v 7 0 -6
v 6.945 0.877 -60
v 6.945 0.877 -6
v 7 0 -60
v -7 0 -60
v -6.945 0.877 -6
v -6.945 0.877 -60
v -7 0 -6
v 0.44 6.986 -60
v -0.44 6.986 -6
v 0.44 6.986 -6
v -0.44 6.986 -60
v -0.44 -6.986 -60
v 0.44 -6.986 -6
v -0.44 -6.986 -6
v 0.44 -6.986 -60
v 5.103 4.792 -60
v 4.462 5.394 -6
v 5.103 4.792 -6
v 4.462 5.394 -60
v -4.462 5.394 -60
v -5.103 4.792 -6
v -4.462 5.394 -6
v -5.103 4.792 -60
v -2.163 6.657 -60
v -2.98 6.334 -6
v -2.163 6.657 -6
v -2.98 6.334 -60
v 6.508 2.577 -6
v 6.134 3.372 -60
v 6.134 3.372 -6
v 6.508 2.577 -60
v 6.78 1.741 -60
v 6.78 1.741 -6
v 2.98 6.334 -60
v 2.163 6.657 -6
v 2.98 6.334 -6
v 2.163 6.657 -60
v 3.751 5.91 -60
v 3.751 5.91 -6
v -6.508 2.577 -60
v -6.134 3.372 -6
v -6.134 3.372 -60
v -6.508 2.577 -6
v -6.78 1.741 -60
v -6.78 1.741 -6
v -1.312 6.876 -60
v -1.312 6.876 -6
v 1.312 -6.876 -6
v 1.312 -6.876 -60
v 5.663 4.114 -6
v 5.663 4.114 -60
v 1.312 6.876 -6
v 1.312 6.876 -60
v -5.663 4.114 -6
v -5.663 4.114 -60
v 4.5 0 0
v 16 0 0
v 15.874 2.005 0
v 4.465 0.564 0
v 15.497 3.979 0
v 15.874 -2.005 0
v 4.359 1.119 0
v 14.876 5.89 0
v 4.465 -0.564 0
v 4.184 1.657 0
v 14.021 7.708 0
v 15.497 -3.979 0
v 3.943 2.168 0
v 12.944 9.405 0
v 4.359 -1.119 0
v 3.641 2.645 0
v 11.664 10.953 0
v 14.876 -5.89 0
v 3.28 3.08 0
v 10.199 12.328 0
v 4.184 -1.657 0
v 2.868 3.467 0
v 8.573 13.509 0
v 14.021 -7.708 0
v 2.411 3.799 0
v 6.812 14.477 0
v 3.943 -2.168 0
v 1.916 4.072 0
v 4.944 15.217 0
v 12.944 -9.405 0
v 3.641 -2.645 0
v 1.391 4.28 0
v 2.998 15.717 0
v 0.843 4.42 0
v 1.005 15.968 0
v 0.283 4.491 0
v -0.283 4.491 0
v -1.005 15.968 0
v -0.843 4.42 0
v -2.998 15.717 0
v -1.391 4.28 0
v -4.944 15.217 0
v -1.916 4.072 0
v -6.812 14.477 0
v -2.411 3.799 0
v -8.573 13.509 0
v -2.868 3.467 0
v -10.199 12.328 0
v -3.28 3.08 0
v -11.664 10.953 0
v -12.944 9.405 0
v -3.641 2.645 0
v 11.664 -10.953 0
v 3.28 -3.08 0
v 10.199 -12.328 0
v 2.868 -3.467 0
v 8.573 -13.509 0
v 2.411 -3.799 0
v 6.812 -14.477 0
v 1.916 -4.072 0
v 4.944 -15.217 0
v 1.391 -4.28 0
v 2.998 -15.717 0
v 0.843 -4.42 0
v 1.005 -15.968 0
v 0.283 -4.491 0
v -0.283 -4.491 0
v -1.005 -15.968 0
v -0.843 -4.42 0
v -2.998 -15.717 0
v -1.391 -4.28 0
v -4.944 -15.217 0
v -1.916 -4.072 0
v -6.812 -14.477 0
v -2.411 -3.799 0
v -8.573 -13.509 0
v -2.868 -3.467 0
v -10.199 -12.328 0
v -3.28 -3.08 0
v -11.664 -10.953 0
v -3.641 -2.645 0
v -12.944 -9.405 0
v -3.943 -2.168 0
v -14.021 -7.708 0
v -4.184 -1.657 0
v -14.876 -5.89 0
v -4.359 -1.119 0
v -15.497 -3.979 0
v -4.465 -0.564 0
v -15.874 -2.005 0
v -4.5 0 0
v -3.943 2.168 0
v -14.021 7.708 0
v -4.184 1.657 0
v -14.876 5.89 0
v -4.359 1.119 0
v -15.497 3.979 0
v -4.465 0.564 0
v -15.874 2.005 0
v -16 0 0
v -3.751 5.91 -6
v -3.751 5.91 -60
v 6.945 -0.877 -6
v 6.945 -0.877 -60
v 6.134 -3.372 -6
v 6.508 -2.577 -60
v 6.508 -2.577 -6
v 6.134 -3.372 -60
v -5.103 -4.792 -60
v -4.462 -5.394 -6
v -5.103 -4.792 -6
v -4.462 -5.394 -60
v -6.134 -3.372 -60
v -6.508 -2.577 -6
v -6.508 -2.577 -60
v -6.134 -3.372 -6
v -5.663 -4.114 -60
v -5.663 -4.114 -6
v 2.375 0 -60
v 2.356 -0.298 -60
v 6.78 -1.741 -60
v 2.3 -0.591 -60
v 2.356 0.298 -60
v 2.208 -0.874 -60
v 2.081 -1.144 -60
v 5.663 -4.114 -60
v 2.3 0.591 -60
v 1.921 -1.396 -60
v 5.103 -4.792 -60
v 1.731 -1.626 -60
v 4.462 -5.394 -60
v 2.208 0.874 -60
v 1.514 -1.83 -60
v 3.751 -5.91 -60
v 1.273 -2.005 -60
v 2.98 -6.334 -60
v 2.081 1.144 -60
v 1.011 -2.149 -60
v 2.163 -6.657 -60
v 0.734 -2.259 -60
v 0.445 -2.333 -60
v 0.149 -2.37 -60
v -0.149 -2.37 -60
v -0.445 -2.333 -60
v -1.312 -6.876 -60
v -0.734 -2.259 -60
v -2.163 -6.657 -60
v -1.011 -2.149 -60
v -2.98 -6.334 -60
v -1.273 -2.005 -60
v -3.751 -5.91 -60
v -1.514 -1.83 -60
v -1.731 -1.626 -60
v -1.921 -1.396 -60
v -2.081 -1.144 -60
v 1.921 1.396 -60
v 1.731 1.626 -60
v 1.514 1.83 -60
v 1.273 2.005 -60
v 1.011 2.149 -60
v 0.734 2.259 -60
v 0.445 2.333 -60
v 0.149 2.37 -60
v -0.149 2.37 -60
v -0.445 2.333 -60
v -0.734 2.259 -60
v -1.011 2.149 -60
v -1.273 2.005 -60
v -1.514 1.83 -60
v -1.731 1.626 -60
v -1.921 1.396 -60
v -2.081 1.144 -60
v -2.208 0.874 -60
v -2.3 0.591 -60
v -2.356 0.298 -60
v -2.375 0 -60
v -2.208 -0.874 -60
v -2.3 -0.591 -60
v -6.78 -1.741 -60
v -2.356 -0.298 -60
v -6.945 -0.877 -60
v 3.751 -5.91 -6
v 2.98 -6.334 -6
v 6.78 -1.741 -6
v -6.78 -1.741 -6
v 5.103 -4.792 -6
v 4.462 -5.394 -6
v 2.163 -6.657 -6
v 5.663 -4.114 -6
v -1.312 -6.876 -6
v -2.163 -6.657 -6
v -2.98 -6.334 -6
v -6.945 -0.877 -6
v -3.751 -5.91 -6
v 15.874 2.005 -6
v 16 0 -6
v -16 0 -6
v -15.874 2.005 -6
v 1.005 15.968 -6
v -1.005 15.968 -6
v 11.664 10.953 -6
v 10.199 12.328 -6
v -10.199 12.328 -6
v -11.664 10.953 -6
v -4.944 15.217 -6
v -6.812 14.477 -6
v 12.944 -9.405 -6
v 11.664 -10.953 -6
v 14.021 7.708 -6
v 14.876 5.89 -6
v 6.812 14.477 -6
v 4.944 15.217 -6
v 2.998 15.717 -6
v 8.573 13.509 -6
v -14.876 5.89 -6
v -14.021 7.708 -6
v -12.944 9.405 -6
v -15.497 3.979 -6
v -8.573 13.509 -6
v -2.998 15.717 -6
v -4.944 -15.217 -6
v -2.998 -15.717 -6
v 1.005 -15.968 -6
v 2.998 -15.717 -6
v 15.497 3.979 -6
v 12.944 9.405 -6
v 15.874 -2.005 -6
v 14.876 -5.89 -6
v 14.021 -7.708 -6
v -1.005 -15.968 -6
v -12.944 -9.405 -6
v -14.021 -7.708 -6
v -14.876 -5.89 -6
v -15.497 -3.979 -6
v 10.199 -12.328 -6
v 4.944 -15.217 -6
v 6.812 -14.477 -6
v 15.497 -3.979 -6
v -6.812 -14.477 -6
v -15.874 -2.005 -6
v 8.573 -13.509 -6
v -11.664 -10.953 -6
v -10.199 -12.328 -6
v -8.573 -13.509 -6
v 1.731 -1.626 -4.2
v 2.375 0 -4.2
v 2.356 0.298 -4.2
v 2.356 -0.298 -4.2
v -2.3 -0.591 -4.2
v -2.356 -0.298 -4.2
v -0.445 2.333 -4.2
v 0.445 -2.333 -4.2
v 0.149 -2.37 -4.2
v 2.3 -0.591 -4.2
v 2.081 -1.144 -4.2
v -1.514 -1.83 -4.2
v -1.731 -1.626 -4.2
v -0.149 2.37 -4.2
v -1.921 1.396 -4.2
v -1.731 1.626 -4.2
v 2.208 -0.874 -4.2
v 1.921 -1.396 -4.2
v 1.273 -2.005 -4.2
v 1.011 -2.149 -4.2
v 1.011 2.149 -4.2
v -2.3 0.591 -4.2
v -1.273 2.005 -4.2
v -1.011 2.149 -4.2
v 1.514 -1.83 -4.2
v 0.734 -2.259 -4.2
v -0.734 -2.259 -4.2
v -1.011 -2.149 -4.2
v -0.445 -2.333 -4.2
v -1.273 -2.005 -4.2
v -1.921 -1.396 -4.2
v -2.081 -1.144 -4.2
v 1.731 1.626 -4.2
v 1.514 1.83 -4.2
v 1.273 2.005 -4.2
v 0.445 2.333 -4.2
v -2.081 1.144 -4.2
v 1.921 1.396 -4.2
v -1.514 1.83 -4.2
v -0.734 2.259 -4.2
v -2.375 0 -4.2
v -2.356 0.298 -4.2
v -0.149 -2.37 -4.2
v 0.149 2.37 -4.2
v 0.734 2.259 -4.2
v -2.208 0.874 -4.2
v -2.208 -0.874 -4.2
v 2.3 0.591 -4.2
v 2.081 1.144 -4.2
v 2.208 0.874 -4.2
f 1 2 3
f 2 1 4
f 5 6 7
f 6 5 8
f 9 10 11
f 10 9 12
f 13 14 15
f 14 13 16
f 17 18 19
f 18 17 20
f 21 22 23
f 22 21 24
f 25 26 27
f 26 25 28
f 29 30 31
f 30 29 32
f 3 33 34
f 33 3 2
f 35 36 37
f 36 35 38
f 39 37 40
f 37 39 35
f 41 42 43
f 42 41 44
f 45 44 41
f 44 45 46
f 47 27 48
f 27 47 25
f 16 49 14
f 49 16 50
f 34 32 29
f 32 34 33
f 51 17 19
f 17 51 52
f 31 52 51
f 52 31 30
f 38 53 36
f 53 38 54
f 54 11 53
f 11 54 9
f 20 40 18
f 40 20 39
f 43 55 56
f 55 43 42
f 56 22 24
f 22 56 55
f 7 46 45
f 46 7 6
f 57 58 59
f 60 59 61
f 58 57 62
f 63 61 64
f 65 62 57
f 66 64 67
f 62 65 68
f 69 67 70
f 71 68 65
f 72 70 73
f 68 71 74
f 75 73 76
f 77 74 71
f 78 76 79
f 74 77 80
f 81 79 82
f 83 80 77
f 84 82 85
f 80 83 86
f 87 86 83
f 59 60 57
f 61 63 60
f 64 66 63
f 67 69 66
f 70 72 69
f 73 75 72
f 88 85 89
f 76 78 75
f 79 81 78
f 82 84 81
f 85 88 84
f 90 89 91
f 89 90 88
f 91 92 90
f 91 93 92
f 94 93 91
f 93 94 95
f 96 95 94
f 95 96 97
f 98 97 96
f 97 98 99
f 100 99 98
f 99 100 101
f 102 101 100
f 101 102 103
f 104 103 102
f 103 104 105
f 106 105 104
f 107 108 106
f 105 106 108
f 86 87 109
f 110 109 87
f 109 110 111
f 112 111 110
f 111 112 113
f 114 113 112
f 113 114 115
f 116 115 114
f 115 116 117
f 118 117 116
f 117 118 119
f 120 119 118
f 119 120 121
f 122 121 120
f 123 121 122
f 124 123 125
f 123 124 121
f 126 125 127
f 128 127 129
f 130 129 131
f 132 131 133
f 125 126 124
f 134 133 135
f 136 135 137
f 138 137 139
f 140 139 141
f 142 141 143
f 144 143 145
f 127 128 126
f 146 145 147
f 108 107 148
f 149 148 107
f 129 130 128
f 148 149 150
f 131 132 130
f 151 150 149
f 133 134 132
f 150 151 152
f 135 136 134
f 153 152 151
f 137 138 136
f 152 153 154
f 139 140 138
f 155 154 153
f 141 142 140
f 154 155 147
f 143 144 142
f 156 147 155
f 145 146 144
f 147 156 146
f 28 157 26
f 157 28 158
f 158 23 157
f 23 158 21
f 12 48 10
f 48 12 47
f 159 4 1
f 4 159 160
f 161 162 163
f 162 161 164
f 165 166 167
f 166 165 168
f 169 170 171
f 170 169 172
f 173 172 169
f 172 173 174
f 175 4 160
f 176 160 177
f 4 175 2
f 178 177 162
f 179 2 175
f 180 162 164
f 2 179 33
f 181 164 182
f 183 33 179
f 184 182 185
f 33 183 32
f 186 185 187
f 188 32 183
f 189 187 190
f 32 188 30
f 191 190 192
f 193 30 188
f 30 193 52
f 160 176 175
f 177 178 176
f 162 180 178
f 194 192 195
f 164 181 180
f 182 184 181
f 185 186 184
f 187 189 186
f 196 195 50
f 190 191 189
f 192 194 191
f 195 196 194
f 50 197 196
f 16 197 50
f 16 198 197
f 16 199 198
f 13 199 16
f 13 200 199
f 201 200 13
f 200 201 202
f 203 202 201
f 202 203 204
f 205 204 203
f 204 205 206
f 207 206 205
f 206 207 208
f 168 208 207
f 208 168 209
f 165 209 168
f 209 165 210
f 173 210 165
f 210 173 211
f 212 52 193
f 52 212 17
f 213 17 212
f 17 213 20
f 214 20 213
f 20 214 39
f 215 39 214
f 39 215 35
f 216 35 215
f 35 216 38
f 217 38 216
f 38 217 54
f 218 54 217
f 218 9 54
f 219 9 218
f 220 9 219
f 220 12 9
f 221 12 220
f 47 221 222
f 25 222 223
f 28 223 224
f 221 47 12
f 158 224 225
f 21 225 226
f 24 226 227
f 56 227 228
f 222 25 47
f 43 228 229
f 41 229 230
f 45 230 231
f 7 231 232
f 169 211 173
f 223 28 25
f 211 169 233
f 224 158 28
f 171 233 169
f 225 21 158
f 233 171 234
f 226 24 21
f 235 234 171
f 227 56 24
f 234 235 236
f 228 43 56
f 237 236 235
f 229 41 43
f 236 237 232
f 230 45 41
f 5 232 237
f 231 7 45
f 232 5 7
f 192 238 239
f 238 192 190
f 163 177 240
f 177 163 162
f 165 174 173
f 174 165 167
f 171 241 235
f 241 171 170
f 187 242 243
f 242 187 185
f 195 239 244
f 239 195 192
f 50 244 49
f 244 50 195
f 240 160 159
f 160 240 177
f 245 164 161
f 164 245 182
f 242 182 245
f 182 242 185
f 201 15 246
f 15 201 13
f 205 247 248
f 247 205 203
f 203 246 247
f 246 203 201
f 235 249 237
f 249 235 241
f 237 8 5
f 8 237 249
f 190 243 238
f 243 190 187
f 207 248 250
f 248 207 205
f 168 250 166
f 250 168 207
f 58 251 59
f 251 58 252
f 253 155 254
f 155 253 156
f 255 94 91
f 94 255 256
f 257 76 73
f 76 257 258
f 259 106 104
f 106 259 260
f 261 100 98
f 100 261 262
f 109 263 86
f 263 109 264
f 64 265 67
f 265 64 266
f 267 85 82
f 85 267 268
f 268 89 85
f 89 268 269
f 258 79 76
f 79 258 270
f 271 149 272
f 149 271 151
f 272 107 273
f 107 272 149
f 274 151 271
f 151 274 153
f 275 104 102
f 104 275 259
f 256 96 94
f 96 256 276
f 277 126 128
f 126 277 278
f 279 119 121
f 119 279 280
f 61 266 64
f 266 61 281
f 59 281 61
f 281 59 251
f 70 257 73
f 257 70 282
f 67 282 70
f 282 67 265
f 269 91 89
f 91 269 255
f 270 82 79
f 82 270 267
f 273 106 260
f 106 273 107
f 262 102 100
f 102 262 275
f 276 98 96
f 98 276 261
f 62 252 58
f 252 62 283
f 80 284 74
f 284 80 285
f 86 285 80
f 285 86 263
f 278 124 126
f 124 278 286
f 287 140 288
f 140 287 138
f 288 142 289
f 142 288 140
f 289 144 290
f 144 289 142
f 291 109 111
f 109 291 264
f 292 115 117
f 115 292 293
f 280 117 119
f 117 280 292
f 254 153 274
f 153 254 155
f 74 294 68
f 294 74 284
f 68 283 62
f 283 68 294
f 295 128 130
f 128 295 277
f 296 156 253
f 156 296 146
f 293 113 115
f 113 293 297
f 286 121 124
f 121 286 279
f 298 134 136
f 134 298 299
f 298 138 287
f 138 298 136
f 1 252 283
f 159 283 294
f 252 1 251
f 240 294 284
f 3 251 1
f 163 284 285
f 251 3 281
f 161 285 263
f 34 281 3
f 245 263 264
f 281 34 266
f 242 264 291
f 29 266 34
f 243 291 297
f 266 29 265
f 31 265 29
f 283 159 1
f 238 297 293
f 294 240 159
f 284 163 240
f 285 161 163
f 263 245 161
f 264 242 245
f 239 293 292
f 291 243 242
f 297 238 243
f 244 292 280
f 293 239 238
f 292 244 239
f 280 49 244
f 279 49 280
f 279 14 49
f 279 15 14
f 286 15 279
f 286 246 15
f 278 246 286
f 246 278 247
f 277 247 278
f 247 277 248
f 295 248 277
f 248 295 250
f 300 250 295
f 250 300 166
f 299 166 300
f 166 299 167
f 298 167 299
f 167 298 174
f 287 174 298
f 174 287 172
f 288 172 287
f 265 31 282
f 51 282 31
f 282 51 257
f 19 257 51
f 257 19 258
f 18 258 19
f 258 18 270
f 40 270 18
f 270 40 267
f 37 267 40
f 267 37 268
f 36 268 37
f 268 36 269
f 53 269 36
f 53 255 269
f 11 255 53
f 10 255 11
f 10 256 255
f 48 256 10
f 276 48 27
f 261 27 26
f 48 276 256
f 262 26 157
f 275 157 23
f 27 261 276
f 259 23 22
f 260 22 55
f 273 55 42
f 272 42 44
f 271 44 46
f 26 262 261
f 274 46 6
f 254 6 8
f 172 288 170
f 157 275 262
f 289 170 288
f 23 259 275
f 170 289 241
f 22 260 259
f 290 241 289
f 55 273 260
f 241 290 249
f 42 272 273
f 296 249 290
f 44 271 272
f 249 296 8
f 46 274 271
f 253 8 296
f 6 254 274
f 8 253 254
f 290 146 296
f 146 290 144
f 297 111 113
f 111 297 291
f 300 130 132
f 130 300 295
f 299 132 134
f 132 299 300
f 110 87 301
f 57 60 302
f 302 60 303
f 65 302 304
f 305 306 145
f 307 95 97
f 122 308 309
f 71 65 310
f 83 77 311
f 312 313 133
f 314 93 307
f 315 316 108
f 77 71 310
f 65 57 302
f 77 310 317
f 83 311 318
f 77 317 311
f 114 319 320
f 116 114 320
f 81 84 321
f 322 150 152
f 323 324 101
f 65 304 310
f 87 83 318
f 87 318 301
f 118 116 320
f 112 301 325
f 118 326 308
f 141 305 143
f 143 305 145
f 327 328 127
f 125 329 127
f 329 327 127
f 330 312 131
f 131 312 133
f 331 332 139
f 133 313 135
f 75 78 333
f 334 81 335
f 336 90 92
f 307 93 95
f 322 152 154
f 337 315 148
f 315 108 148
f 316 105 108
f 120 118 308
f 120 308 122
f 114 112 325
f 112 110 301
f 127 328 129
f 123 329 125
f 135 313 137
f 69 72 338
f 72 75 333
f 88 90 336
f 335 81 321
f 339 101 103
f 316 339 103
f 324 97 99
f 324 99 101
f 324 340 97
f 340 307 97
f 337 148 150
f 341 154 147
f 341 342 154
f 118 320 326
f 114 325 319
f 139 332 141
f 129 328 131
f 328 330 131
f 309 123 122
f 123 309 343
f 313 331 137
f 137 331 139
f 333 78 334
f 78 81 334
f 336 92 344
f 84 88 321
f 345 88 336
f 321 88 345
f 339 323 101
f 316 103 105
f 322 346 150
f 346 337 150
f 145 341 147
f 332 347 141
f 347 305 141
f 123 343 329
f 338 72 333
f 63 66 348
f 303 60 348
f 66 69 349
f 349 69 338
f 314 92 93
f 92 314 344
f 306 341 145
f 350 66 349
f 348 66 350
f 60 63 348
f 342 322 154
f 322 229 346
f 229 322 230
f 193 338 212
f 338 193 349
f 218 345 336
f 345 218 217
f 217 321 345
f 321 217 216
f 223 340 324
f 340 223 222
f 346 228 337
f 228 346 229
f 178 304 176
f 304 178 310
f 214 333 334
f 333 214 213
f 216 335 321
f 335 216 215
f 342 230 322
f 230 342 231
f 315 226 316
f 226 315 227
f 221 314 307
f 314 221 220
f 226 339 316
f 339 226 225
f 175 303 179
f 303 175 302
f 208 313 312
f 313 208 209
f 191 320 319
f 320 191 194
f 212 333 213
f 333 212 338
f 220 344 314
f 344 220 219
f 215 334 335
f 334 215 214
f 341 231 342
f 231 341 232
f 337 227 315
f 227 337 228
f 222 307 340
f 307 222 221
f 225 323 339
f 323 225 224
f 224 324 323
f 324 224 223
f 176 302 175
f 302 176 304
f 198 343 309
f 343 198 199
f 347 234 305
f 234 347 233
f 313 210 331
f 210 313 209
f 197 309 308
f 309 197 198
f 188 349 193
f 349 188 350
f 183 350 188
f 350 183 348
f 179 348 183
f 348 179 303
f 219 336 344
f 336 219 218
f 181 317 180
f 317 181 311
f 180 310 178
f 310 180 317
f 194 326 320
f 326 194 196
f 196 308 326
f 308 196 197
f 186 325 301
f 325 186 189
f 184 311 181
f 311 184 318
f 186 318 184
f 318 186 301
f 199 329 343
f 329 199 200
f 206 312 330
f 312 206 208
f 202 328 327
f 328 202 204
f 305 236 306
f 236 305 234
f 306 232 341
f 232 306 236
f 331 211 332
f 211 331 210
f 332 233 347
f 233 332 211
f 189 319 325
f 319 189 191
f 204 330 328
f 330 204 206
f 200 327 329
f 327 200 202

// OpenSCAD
$fn = 50;


difference() {
	union() {
		translate(v = [0, 0, -60.0000000000]) {
			cylinder(h = 60, r = 7.0000000000);
		}
		translate(v = [0, 0, -6.0000000000]) {
			cylinder(h = 6, r = 16.0000000000);
		}
	}
	union() {
		translate(v = [0, 0, 0]) {
			rotate(a = [0, 0, 0]) {
				difference() {
					union() {
						#translate(v = [0, 0, -60.0000000000]) {
							cylinder(h = 60, r = 2.2500000000);
						}
						#translate(v = [0, 0, -4.2000000000]) {
							cylinder(h = 4.2000000000, r1 = 2.3750000000, r2 = 4.5000000000);
						}
						#translate(v = [0, 0, -60.0000000000]) {
							cylinder(h = 60, r = 2.3750000000);
						}
						#translate(v = [0, 0, -60.0000000000]) {
							cylinder(h = 60, r = 2.2500000000);
						}
					}
					union();
				}
			}
		}
	}
}
